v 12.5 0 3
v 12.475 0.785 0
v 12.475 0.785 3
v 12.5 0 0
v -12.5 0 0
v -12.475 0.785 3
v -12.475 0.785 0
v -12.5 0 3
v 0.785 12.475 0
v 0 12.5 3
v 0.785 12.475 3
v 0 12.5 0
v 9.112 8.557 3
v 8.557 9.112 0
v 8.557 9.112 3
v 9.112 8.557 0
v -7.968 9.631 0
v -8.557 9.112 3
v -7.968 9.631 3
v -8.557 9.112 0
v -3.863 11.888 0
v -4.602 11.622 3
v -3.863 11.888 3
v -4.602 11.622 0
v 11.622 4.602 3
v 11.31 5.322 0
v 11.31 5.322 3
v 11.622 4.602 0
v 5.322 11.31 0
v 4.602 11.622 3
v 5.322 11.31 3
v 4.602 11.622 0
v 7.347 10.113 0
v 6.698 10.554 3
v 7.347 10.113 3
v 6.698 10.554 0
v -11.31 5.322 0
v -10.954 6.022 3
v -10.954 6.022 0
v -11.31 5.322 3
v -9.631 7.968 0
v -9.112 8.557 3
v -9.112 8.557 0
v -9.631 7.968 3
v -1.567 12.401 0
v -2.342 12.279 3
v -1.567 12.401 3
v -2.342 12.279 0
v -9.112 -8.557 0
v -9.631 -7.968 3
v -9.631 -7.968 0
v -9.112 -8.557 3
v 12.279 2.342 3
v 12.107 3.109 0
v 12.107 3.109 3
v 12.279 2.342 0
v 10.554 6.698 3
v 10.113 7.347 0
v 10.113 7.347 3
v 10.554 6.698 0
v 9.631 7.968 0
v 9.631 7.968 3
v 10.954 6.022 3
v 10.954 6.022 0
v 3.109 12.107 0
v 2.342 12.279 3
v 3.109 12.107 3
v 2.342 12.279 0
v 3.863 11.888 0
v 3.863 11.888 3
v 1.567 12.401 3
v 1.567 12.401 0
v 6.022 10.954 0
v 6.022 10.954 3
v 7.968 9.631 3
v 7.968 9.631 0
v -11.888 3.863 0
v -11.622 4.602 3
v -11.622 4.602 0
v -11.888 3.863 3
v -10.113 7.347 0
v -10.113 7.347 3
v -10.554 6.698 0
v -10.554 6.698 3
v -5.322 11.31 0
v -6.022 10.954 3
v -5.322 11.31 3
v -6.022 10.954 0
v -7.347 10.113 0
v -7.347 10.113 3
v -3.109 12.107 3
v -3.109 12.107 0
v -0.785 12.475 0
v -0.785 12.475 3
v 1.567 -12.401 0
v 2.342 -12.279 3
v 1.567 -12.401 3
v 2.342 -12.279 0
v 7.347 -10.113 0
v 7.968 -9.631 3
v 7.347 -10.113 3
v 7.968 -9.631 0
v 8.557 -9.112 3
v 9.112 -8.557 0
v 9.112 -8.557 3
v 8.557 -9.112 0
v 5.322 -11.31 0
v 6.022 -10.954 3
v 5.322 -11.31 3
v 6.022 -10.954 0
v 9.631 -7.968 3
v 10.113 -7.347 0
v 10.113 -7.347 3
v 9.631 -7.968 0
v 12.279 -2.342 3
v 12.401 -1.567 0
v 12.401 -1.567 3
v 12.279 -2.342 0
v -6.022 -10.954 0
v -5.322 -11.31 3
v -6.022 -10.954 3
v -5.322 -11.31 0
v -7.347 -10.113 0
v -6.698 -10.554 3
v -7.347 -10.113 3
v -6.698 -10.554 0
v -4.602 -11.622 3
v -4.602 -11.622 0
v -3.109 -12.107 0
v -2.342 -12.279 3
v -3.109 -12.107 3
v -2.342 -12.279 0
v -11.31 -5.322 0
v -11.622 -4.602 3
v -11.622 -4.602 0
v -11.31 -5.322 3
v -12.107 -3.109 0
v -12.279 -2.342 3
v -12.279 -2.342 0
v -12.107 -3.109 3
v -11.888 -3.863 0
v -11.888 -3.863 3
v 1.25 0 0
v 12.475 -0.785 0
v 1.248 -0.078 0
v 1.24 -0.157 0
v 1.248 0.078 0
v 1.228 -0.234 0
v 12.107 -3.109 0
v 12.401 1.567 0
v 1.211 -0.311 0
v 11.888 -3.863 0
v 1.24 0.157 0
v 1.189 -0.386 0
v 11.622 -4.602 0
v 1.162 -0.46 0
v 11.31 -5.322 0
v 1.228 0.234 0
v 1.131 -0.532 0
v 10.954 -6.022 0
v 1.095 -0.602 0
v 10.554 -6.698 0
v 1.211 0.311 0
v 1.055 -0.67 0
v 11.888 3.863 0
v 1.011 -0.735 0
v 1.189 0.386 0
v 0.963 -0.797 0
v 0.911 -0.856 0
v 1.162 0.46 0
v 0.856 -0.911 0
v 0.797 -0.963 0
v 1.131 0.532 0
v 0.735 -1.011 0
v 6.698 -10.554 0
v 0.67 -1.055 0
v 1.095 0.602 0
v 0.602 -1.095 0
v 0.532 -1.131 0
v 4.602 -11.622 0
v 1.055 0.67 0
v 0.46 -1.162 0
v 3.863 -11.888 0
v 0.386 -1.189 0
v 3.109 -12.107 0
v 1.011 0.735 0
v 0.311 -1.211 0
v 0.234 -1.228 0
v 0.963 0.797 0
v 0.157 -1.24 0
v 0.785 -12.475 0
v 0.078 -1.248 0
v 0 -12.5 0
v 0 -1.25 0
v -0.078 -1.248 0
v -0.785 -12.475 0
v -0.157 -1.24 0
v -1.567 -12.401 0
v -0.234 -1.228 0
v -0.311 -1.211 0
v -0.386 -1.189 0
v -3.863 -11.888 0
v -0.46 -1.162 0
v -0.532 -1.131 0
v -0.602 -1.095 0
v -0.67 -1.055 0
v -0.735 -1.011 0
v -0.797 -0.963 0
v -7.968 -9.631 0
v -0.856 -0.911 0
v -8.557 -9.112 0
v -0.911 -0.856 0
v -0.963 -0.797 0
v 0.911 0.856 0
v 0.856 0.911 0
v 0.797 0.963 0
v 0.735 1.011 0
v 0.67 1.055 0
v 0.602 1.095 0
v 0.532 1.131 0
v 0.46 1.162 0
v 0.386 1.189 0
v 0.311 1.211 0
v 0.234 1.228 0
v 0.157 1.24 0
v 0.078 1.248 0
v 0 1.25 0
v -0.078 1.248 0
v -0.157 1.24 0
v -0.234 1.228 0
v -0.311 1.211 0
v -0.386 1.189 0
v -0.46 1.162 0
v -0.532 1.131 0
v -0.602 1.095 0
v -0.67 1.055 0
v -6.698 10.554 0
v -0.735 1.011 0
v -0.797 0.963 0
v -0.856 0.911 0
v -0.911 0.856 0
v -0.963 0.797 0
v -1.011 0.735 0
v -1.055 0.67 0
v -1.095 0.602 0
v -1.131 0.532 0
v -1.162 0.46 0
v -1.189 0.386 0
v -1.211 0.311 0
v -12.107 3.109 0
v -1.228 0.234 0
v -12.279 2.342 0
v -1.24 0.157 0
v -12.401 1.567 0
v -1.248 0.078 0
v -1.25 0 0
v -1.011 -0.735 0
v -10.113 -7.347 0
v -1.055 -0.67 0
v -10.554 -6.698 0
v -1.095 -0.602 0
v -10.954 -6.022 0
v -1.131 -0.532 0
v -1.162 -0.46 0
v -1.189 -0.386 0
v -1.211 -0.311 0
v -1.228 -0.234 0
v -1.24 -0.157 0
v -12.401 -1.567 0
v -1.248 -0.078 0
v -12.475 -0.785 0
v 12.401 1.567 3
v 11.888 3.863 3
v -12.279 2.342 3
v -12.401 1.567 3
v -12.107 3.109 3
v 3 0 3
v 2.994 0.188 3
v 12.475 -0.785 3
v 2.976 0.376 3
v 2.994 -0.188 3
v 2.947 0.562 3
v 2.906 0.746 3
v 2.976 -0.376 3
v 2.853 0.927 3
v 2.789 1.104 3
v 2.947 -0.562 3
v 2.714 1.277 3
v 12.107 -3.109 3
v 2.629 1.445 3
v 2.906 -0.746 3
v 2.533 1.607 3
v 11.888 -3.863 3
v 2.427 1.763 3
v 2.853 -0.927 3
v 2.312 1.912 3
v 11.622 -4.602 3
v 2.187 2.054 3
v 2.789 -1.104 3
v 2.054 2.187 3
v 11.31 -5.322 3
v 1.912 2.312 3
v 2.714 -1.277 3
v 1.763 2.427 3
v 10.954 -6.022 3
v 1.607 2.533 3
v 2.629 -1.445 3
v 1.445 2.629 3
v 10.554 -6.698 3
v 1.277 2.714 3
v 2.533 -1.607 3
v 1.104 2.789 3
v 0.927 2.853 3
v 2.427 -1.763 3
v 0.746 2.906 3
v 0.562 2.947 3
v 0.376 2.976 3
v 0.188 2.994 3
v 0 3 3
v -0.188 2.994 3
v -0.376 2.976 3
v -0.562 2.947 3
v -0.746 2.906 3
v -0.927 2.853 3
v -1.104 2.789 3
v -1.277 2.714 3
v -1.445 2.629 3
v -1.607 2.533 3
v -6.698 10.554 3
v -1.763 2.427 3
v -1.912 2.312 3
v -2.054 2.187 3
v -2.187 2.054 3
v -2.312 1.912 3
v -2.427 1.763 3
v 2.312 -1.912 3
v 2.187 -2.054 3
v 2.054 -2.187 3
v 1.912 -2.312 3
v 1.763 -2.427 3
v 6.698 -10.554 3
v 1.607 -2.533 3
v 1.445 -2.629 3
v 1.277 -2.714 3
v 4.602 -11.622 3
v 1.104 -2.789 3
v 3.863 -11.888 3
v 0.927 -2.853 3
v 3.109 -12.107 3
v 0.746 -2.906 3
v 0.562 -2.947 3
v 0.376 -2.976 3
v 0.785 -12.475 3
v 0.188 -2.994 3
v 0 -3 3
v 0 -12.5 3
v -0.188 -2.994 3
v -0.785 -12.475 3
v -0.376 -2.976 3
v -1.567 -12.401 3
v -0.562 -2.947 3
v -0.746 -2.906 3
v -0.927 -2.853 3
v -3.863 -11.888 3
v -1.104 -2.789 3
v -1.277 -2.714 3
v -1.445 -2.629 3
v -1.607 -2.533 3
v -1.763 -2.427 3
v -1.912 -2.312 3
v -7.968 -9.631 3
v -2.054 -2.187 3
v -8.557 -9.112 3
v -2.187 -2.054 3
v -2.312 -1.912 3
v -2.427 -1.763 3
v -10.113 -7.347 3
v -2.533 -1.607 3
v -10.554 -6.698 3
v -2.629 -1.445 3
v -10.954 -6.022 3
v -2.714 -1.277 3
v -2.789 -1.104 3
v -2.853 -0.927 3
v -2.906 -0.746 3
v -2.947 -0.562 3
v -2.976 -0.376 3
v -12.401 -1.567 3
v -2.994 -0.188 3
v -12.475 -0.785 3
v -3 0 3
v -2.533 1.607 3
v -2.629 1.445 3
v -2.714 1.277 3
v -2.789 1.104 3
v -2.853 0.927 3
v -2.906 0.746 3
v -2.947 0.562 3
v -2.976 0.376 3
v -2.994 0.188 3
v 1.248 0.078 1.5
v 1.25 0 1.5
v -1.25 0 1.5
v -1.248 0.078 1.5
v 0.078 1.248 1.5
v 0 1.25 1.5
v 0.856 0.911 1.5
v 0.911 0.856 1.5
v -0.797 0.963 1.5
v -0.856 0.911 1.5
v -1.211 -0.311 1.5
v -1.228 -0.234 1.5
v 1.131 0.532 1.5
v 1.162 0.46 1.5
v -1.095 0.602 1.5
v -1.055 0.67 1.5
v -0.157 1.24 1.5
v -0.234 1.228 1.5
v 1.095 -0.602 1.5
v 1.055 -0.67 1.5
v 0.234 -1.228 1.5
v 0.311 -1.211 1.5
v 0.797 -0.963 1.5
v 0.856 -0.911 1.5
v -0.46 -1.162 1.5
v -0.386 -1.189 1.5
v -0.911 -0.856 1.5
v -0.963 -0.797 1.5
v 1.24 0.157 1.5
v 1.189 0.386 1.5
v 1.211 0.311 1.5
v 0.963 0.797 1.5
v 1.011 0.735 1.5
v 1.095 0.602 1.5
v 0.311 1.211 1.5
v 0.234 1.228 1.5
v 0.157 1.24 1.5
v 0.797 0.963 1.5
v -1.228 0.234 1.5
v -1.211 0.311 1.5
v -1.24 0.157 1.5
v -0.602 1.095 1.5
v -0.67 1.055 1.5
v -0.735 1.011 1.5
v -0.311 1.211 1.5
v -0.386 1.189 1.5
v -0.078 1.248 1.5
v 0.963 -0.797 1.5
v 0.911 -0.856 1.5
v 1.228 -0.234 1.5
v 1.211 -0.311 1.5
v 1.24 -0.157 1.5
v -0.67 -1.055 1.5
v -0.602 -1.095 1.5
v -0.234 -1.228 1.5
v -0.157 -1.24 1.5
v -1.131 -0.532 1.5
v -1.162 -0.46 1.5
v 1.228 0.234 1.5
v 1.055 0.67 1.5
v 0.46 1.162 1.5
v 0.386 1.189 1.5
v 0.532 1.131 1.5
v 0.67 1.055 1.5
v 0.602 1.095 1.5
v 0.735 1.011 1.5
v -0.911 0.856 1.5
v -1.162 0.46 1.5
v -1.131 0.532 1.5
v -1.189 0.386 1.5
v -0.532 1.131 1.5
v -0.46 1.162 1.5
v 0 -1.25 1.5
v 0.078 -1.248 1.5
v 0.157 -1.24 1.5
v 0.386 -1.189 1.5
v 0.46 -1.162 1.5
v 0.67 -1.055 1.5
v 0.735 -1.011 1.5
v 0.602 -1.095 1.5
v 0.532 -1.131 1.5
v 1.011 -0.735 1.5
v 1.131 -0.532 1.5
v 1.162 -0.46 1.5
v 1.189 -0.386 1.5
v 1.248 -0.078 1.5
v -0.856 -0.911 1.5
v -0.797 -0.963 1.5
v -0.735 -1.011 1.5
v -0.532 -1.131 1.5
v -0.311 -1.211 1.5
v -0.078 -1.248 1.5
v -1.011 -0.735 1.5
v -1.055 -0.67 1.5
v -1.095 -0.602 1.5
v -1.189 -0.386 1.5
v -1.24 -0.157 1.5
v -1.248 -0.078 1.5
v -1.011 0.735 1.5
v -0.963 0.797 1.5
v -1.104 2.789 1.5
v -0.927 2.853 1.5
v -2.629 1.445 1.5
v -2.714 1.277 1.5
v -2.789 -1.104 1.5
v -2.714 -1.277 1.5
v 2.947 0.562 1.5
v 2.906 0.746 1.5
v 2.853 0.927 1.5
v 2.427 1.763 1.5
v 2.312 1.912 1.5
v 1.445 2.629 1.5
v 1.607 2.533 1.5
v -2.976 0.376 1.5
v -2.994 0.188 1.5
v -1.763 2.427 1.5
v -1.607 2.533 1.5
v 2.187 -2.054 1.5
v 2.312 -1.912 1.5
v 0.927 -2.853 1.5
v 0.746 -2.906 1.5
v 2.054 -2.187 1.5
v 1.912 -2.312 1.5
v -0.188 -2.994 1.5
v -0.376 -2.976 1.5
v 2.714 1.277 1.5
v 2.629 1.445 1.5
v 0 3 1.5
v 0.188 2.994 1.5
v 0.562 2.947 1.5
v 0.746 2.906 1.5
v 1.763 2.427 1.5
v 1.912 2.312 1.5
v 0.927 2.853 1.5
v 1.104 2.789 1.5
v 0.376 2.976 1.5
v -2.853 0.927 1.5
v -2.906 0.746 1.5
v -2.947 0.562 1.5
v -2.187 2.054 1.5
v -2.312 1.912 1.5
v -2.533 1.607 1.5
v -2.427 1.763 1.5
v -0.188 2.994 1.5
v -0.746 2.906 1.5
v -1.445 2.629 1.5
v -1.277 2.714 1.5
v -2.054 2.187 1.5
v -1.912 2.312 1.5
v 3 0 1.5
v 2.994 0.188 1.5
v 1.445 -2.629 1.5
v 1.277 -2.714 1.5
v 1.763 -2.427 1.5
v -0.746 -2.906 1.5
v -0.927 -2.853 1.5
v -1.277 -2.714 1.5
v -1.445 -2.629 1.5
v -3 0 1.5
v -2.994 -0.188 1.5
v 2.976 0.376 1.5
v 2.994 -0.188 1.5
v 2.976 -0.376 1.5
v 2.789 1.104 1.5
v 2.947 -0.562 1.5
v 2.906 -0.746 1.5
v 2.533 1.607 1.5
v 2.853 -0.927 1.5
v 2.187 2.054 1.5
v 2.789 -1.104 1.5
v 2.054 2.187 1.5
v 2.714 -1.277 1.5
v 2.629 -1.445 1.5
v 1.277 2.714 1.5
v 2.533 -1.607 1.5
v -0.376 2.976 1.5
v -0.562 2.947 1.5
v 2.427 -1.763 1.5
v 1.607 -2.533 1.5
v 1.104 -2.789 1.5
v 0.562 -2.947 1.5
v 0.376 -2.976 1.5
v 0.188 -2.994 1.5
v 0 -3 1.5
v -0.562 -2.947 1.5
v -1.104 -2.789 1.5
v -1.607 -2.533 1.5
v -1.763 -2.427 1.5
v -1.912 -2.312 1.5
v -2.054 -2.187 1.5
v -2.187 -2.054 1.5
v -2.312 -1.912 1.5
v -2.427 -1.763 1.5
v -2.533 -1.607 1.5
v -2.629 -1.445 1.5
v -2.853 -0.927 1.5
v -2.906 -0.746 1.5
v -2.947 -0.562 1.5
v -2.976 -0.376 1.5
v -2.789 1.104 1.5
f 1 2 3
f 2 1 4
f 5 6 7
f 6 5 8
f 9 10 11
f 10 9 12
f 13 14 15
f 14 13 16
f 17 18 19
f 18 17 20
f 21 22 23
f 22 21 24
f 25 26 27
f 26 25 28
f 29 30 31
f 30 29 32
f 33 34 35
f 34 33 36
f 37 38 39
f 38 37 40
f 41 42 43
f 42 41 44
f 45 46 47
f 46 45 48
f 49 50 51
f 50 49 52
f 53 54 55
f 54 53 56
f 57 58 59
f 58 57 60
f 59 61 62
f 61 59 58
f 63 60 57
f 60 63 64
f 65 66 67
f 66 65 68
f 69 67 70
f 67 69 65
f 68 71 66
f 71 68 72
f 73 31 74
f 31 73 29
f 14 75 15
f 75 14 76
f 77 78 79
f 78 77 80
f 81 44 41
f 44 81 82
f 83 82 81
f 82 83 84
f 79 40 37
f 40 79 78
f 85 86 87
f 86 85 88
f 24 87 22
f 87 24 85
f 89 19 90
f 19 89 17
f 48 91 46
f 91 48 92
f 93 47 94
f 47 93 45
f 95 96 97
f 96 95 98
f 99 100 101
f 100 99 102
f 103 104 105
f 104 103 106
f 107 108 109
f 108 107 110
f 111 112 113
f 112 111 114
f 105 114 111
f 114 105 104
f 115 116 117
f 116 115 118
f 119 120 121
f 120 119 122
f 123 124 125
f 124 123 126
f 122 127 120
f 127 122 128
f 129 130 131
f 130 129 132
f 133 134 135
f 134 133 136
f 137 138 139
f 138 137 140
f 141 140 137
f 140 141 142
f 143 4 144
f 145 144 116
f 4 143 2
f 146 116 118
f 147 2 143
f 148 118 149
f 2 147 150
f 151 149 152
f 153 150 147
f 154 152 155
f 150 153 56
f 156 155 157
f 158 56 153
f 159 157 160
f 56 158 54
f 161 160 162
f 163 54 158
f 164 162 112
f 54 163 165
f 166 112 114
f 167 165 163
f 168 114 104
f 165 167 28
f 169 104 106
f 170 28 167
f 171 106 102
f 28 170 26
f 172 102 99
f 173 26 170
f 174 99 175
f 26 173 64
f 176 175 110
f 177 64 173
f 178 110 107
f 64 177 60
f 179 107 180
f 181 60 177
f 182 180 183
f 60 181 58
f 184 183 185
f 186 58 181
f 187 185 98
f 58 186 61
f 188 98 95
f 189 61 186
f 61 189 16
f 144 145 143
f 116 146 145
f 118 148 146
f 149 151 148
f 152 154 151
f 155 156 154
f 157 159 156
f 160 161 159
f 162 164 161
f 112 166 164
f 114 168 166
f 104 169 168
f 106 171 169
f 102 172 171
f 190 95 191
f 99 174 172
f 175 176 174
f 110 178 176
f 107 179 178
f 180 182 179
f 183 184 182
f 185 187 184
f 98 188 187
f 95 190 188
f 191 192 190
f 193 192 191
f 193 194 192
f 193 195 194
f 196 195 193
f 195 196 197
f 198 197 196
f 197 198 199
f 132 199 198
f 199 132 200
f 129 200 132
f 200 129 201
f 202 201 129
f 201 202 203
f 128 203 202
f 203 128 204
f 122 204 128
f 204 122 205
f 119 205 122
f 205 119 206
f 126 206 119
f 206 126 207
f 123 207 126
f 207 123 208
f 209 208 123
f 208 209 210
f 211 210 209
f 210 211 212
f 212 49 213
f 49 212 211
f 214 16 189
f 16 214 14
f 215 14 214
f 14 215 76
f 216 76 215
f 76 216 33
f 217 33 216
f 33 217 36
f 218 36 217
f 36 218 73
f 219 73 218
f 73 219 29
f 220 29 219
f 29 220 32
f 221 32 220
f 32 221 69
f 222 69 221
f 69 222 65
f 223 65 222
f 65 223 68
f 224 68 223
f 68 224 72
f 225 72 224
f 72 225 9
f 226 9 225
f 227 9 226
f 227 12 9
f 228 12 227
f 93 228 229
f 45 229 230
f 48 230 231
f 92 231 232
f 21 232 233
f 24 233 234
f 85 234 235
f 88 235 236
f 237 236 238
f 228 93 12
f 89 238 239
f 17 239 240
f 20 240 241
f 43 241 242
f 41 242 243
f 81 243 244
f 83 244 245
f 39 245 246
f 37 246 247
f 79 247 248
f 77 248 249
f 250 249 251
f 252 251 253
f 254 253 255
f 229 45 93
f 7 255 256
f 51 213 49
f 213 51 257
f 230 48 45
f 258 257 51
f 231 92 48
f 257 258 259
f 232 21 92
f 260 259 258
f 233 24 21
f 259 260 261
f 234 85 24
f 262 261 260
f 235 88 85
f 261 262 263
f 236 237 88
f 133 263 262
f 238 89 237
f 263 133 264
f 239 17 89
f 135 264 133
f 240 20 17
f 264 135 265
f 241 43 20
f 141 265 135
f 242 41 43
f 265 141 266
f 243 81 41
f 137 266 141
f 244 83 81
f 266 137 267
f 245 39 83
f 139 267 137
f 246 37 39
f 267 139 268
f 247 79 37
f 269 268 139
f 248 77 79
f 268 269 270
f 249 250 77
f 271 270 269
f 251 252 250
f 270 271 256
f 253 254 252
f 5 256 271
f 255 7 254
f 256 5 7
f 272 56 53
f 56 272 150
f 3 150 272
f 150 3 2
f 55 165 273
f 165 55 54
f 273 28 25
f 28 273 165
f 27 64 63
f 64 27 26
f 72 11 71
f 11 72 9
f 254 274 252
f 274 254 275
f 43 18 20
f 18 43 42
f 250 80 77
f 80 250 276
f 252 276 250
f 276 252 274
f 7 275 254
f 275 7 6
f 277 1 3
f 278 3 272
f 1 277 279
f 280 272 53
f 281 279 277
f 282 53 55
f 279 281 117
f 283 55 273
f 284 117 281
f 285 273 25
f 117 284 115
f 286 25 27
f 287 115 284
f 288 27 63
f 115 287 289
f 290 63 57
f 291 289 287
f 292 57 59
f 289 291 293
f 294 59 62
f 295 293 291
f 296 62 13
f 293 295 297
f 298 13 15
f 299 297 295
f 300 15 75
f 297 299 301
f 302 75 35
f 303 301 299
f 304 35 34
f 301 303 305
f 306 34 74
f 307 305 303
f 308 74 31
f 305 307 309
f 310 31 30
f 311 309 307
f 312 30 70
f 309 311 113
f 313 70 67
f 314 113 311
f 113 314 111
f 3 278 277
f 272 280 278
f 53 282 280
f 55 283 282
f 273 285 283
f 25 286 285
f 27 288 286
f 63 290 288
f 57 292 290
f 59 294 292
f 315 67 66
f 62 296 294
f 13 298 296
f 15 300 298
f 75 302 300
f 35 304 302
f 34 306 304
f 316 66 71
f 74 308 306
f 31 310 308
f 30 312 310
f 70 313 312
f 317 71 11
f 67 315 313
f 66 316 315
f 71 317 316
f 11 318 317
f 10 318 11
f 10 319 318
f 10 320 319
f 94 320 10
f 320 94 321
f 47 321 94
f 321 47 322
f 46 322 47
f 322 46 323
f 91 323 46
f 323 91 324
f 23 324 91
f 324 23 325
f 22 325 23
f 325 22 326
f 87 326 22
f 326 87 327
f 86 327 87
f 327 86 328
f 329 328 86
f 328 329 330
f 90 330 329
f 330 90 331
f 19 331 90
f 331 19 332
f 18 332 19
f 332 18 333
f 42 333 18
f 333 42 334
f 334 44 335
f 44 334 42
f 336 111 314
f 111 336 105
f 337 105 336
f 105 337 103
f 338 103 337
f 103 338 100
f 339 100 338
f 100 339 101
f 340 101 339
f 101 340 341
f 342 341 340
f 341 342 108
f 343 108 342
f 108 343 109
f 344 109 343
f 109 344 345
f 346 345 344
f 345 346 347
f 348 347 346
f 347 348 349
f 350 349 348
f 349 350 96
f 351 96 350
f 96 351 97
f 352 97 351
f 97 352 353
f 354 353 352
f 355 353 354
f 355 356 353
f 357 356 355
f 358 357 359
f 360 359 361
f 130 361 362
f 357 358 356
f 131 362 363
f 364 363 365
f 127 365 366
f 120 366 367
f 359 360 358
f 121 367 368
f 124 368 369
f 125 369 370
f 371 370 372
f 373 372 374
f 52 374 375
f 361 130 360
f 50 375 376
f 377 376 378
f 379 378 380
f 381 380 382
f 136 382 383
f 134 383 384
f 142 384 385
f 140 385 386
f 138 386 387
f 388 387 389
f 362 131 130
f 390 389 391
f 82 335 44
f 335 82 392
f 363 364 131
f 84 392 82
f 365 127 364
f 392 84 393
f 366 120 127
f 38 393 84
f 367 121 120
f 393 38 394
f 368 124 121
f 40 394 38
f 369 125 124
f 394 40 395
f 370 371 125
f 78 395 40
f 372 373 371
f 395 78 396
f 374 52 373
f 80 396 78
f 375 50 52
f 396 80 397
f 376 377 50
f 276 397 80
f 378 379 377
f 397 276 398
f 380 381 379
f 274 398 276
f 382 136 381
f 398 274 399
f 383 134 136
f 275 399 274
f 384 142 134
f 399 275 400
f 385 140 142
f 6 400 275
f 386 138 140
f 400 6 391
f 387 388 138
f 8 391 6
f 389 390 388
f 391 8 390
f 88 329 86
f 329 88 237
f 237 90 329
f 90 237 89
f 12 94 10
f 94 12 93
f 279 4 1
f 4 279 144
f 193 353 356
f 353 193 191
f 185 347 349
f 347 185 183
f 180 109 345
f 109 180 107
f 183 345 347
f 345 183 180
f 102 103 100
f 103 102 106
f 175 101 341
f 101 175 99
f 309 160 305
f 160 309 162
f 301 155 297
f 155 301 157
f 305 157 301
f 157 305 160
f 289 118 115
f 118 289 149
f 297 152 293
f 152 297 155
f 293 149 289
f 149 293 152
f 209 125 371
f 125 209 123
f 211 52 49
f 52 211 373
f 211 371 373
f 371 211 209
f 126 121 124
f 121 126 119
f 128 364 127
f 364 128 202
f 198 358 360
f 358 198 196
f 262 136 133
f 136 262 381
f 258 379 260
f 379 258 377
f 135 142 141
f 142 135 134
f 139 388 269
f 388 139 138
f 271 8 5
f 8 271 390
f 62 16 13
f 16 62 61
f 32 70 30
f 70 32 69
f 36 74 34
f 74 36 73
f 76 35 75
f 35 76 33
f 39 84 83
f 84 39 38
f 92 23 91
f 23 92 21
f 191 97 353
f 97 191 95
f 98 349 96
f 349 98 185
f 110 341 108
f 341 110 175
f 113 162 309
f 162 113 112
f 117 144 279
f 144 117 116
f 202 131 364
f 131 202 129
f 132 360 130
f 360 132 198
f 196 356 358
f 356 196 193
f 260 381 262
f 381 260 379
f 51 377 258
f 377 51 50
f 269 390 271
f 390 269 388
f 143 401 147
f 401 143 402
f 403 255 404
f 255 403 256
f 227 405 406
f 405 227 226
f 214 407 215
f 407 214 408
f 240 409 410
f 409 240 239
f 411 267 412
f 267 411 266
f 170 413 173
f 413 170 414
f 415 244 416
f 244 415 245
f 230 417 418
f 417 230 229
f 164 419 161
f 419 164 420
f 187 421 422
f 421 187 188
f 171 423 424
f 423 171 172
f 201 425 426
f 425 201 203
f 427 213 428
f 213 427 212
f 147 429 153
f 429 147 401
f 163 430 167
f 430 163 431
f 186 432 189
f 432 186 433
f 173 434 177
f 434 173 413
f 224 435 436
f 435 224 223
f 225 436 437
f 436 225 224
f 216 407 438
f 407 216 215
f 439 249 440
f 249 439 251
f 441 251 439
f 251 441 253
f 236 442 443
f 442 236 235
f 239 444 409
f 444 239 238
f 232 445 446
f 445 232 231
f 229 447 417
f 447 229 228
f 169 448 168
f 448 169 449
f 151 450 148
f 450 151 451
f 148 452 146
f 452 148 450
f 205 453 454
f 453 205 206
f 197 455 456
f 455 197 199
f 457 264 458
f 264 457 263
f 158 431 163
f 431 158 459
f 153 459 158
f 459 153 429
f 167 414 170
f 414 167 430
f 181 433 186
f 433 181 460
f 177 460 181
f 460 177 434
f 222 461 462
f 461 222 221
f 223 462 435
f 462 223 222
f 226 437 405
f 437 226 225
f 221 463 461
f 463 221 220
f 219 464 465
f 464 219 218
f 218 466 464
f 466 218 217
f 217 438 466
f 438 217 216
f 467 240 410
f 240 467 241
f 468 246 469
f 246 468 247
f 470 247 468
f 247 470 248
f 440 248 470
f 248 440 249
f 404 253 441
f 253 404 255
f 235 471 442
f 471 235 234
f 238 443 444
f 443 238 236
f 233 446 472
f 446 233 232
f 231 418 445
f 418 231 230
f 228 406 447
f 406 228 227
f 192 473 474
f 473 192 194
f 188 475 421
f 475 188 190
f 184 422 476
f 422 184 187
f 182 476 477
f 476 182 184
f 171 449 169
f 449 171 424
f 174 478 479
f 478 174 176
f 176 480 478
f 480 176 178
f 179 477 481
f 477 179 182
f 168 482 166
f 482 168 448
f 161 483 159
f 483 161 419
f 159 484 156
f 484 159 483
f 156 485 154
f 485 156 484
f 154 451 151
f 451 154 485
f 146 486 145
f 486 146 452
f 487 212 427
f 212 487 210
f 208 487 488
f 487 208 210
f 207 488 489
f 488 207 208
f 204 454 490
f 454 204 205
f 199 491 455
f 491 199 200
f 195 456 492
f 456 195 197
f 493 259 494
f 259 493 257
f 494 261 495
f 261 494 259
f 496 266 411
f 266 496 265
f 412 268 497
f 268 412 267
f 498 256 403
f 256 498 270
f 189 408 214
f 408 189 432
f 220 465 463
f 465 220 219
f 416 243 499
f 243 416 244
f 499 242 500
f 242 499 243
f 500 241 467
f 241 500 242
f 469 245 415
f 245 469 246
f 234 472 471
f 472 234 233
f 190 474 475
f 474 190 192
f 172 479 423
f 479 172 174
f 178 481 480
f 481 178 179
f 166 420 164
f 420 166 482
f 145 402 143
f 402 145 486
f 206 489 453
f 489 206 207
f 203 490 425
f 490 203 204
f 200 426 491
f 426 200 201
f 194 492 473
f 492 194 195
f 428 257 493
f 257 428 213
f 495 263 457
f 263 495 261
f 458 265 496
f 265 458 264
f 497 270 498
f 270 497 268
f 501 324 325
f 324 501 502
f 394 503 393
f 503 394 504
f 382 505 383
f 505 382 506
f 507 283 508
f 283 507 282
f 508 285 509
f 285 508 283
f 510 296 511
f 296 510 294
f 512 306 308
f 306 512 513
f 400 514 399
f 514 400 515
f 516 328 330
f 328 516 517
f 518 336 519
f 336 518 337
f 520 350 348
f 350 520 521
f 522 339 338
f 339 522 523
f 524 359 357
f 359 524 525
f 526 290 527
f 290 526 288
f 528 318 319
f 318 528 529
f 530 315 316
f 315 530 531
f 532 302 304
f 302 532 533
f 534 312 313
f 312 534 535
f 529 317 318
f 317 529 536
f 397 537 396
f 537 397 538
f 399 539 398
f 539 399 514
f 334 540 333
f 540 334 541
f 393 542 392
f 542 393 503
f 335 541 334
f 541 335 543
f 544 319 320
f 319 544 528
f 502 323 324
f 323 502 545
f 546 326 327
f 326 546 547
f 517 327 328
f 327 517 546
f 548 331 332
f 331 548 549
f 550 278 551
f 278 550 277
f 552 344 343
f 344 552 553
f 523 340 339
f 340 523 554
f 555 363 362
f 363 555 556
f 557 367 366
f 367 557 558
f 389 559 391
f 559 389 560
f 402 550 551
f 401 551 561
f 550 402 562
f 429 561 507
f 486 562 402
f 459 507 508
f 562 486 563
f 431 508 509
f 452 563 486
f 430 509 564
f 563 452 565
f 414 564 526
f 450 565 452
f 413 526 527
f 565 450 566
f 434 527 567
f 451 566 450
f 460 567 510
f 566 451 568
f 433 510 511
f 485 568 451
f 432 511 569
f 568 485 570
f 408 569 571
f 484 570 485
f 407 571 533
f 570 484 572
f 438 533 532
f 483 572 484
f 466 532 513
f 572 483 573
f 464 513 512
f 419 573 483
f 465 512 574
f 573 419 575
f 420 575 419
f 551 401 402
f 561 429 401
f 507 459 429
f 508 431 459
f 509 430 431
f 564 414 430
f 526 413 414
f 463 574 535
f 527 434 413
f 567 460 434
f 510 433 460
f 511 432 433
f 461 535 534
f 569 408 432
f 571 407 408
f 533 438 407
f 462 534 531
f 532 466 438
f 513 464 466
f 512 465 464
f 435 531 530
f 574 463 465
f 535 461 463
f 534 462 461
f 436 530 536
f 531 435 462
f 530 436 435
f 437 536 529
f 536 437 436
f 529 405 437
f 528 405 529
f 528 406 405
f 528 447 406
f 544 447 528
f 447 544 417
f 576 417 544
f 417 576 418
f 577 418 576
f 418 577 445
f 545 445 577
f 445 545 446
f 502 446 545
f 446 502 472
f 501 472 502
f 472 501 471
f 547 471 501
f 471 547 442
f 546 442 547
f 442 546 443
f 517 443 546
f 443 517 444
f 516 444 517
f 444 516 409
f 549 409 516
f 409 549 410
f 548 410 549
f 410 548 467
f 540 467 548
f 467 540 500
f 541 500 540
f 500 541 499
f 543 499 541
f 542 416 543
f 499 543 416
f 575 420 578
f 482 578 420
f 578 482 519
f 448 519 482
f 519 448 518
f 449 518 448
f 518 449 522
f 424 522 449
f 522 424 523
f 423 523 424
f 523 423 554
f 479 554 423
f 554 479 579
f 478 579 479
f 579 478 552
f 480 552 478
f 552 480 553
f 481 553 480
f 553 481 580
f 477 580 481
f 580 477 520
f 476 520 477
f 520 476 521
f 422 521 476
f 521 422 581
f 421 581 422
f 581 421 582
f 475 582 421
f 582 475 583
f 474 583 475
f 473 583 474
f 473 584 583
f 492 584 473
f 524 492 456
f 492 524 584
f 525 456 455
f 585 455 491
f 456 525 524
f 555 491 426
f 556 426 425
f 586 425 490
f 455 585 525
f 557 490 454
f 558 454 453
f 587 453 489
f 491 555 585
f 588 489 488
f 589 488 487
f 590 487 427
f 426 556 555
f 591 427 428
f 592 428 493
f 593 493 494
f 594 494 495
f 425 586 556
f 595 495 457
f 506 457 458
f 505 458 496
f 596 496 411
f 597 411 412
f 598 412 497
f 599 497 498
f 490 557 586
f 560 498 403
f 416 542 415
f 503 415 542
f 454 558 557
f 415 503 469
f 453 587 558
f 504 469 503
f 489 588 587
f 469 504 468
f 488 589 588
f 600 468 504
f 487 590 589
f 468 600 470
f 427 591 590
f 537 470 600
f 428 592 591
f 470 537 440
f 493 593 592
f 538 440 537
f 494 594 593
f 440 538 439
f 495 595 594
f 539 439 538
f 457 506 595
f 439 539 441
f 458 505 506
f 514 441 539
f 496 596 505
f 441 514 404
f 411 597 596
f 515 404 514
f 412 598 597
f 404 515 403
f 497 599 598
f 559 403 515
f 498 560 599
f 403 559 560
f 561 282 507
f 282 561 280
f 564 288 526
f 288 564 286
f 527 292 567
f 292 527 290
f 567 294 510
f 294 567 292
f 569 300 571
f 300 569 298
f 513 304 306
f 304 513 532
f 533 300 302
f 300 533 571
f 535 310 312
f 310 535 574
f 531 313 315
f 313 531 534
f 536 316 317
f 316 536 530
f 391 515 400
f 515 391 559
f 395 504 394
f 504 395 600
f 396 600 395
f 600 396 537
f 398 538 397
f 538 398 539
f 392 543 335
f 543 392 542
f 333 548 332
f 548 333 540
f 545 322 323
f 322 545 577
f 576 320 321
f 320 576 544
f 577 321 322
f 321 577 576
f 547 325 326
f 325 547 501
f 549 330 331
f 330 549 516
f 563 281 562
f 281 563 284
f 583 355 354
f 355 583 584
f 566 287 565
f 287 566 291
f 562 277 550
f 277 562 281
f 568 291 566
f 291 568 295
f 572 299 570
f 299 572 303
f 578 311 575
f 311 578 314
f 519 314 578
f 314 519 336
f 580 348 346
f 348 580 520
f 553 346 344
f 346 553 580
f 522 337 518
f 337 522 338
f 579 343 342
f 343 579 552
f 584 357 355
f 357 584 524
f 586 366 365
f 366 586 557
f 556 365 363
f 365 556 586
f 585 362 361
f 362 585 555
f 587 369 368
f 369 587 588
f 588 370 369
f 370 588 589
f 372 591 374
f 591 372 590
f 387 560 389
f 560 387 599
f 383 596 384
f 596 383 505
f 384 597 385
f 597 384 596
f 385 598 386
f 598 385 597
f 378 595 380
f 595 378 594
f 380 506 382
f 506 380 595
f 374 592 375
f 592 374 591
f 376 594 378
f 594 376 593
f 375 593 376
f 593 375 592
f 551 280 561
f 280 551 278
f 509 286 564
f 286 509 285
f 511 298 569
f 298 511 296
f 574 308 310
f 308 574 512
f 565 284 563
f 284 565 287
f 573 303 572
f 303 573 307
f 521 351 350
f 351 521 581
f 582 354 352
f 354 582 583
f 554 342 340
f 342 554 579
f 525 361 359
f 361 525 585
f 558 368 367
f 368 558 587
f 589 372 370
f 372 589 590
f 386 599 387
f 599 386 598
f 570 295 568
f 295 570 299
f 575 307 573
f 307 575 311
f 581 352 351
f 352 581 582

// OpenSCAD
h_rot=3;
d_rot=25;
d_buc = 2.5;

d_tv = 6;
h_tv = h_rot - 1.5;

$fn=100;

difference(){
	cylinder(d=d_rot, h=h_rot);

	translate([0, 0, -1])
		cylinder(d=d_buc, h=h_rot+2);
	translate([0, 0, h_rot-h_tv])
		cylinder(d=d_tv, h=h_tv+1);
}
